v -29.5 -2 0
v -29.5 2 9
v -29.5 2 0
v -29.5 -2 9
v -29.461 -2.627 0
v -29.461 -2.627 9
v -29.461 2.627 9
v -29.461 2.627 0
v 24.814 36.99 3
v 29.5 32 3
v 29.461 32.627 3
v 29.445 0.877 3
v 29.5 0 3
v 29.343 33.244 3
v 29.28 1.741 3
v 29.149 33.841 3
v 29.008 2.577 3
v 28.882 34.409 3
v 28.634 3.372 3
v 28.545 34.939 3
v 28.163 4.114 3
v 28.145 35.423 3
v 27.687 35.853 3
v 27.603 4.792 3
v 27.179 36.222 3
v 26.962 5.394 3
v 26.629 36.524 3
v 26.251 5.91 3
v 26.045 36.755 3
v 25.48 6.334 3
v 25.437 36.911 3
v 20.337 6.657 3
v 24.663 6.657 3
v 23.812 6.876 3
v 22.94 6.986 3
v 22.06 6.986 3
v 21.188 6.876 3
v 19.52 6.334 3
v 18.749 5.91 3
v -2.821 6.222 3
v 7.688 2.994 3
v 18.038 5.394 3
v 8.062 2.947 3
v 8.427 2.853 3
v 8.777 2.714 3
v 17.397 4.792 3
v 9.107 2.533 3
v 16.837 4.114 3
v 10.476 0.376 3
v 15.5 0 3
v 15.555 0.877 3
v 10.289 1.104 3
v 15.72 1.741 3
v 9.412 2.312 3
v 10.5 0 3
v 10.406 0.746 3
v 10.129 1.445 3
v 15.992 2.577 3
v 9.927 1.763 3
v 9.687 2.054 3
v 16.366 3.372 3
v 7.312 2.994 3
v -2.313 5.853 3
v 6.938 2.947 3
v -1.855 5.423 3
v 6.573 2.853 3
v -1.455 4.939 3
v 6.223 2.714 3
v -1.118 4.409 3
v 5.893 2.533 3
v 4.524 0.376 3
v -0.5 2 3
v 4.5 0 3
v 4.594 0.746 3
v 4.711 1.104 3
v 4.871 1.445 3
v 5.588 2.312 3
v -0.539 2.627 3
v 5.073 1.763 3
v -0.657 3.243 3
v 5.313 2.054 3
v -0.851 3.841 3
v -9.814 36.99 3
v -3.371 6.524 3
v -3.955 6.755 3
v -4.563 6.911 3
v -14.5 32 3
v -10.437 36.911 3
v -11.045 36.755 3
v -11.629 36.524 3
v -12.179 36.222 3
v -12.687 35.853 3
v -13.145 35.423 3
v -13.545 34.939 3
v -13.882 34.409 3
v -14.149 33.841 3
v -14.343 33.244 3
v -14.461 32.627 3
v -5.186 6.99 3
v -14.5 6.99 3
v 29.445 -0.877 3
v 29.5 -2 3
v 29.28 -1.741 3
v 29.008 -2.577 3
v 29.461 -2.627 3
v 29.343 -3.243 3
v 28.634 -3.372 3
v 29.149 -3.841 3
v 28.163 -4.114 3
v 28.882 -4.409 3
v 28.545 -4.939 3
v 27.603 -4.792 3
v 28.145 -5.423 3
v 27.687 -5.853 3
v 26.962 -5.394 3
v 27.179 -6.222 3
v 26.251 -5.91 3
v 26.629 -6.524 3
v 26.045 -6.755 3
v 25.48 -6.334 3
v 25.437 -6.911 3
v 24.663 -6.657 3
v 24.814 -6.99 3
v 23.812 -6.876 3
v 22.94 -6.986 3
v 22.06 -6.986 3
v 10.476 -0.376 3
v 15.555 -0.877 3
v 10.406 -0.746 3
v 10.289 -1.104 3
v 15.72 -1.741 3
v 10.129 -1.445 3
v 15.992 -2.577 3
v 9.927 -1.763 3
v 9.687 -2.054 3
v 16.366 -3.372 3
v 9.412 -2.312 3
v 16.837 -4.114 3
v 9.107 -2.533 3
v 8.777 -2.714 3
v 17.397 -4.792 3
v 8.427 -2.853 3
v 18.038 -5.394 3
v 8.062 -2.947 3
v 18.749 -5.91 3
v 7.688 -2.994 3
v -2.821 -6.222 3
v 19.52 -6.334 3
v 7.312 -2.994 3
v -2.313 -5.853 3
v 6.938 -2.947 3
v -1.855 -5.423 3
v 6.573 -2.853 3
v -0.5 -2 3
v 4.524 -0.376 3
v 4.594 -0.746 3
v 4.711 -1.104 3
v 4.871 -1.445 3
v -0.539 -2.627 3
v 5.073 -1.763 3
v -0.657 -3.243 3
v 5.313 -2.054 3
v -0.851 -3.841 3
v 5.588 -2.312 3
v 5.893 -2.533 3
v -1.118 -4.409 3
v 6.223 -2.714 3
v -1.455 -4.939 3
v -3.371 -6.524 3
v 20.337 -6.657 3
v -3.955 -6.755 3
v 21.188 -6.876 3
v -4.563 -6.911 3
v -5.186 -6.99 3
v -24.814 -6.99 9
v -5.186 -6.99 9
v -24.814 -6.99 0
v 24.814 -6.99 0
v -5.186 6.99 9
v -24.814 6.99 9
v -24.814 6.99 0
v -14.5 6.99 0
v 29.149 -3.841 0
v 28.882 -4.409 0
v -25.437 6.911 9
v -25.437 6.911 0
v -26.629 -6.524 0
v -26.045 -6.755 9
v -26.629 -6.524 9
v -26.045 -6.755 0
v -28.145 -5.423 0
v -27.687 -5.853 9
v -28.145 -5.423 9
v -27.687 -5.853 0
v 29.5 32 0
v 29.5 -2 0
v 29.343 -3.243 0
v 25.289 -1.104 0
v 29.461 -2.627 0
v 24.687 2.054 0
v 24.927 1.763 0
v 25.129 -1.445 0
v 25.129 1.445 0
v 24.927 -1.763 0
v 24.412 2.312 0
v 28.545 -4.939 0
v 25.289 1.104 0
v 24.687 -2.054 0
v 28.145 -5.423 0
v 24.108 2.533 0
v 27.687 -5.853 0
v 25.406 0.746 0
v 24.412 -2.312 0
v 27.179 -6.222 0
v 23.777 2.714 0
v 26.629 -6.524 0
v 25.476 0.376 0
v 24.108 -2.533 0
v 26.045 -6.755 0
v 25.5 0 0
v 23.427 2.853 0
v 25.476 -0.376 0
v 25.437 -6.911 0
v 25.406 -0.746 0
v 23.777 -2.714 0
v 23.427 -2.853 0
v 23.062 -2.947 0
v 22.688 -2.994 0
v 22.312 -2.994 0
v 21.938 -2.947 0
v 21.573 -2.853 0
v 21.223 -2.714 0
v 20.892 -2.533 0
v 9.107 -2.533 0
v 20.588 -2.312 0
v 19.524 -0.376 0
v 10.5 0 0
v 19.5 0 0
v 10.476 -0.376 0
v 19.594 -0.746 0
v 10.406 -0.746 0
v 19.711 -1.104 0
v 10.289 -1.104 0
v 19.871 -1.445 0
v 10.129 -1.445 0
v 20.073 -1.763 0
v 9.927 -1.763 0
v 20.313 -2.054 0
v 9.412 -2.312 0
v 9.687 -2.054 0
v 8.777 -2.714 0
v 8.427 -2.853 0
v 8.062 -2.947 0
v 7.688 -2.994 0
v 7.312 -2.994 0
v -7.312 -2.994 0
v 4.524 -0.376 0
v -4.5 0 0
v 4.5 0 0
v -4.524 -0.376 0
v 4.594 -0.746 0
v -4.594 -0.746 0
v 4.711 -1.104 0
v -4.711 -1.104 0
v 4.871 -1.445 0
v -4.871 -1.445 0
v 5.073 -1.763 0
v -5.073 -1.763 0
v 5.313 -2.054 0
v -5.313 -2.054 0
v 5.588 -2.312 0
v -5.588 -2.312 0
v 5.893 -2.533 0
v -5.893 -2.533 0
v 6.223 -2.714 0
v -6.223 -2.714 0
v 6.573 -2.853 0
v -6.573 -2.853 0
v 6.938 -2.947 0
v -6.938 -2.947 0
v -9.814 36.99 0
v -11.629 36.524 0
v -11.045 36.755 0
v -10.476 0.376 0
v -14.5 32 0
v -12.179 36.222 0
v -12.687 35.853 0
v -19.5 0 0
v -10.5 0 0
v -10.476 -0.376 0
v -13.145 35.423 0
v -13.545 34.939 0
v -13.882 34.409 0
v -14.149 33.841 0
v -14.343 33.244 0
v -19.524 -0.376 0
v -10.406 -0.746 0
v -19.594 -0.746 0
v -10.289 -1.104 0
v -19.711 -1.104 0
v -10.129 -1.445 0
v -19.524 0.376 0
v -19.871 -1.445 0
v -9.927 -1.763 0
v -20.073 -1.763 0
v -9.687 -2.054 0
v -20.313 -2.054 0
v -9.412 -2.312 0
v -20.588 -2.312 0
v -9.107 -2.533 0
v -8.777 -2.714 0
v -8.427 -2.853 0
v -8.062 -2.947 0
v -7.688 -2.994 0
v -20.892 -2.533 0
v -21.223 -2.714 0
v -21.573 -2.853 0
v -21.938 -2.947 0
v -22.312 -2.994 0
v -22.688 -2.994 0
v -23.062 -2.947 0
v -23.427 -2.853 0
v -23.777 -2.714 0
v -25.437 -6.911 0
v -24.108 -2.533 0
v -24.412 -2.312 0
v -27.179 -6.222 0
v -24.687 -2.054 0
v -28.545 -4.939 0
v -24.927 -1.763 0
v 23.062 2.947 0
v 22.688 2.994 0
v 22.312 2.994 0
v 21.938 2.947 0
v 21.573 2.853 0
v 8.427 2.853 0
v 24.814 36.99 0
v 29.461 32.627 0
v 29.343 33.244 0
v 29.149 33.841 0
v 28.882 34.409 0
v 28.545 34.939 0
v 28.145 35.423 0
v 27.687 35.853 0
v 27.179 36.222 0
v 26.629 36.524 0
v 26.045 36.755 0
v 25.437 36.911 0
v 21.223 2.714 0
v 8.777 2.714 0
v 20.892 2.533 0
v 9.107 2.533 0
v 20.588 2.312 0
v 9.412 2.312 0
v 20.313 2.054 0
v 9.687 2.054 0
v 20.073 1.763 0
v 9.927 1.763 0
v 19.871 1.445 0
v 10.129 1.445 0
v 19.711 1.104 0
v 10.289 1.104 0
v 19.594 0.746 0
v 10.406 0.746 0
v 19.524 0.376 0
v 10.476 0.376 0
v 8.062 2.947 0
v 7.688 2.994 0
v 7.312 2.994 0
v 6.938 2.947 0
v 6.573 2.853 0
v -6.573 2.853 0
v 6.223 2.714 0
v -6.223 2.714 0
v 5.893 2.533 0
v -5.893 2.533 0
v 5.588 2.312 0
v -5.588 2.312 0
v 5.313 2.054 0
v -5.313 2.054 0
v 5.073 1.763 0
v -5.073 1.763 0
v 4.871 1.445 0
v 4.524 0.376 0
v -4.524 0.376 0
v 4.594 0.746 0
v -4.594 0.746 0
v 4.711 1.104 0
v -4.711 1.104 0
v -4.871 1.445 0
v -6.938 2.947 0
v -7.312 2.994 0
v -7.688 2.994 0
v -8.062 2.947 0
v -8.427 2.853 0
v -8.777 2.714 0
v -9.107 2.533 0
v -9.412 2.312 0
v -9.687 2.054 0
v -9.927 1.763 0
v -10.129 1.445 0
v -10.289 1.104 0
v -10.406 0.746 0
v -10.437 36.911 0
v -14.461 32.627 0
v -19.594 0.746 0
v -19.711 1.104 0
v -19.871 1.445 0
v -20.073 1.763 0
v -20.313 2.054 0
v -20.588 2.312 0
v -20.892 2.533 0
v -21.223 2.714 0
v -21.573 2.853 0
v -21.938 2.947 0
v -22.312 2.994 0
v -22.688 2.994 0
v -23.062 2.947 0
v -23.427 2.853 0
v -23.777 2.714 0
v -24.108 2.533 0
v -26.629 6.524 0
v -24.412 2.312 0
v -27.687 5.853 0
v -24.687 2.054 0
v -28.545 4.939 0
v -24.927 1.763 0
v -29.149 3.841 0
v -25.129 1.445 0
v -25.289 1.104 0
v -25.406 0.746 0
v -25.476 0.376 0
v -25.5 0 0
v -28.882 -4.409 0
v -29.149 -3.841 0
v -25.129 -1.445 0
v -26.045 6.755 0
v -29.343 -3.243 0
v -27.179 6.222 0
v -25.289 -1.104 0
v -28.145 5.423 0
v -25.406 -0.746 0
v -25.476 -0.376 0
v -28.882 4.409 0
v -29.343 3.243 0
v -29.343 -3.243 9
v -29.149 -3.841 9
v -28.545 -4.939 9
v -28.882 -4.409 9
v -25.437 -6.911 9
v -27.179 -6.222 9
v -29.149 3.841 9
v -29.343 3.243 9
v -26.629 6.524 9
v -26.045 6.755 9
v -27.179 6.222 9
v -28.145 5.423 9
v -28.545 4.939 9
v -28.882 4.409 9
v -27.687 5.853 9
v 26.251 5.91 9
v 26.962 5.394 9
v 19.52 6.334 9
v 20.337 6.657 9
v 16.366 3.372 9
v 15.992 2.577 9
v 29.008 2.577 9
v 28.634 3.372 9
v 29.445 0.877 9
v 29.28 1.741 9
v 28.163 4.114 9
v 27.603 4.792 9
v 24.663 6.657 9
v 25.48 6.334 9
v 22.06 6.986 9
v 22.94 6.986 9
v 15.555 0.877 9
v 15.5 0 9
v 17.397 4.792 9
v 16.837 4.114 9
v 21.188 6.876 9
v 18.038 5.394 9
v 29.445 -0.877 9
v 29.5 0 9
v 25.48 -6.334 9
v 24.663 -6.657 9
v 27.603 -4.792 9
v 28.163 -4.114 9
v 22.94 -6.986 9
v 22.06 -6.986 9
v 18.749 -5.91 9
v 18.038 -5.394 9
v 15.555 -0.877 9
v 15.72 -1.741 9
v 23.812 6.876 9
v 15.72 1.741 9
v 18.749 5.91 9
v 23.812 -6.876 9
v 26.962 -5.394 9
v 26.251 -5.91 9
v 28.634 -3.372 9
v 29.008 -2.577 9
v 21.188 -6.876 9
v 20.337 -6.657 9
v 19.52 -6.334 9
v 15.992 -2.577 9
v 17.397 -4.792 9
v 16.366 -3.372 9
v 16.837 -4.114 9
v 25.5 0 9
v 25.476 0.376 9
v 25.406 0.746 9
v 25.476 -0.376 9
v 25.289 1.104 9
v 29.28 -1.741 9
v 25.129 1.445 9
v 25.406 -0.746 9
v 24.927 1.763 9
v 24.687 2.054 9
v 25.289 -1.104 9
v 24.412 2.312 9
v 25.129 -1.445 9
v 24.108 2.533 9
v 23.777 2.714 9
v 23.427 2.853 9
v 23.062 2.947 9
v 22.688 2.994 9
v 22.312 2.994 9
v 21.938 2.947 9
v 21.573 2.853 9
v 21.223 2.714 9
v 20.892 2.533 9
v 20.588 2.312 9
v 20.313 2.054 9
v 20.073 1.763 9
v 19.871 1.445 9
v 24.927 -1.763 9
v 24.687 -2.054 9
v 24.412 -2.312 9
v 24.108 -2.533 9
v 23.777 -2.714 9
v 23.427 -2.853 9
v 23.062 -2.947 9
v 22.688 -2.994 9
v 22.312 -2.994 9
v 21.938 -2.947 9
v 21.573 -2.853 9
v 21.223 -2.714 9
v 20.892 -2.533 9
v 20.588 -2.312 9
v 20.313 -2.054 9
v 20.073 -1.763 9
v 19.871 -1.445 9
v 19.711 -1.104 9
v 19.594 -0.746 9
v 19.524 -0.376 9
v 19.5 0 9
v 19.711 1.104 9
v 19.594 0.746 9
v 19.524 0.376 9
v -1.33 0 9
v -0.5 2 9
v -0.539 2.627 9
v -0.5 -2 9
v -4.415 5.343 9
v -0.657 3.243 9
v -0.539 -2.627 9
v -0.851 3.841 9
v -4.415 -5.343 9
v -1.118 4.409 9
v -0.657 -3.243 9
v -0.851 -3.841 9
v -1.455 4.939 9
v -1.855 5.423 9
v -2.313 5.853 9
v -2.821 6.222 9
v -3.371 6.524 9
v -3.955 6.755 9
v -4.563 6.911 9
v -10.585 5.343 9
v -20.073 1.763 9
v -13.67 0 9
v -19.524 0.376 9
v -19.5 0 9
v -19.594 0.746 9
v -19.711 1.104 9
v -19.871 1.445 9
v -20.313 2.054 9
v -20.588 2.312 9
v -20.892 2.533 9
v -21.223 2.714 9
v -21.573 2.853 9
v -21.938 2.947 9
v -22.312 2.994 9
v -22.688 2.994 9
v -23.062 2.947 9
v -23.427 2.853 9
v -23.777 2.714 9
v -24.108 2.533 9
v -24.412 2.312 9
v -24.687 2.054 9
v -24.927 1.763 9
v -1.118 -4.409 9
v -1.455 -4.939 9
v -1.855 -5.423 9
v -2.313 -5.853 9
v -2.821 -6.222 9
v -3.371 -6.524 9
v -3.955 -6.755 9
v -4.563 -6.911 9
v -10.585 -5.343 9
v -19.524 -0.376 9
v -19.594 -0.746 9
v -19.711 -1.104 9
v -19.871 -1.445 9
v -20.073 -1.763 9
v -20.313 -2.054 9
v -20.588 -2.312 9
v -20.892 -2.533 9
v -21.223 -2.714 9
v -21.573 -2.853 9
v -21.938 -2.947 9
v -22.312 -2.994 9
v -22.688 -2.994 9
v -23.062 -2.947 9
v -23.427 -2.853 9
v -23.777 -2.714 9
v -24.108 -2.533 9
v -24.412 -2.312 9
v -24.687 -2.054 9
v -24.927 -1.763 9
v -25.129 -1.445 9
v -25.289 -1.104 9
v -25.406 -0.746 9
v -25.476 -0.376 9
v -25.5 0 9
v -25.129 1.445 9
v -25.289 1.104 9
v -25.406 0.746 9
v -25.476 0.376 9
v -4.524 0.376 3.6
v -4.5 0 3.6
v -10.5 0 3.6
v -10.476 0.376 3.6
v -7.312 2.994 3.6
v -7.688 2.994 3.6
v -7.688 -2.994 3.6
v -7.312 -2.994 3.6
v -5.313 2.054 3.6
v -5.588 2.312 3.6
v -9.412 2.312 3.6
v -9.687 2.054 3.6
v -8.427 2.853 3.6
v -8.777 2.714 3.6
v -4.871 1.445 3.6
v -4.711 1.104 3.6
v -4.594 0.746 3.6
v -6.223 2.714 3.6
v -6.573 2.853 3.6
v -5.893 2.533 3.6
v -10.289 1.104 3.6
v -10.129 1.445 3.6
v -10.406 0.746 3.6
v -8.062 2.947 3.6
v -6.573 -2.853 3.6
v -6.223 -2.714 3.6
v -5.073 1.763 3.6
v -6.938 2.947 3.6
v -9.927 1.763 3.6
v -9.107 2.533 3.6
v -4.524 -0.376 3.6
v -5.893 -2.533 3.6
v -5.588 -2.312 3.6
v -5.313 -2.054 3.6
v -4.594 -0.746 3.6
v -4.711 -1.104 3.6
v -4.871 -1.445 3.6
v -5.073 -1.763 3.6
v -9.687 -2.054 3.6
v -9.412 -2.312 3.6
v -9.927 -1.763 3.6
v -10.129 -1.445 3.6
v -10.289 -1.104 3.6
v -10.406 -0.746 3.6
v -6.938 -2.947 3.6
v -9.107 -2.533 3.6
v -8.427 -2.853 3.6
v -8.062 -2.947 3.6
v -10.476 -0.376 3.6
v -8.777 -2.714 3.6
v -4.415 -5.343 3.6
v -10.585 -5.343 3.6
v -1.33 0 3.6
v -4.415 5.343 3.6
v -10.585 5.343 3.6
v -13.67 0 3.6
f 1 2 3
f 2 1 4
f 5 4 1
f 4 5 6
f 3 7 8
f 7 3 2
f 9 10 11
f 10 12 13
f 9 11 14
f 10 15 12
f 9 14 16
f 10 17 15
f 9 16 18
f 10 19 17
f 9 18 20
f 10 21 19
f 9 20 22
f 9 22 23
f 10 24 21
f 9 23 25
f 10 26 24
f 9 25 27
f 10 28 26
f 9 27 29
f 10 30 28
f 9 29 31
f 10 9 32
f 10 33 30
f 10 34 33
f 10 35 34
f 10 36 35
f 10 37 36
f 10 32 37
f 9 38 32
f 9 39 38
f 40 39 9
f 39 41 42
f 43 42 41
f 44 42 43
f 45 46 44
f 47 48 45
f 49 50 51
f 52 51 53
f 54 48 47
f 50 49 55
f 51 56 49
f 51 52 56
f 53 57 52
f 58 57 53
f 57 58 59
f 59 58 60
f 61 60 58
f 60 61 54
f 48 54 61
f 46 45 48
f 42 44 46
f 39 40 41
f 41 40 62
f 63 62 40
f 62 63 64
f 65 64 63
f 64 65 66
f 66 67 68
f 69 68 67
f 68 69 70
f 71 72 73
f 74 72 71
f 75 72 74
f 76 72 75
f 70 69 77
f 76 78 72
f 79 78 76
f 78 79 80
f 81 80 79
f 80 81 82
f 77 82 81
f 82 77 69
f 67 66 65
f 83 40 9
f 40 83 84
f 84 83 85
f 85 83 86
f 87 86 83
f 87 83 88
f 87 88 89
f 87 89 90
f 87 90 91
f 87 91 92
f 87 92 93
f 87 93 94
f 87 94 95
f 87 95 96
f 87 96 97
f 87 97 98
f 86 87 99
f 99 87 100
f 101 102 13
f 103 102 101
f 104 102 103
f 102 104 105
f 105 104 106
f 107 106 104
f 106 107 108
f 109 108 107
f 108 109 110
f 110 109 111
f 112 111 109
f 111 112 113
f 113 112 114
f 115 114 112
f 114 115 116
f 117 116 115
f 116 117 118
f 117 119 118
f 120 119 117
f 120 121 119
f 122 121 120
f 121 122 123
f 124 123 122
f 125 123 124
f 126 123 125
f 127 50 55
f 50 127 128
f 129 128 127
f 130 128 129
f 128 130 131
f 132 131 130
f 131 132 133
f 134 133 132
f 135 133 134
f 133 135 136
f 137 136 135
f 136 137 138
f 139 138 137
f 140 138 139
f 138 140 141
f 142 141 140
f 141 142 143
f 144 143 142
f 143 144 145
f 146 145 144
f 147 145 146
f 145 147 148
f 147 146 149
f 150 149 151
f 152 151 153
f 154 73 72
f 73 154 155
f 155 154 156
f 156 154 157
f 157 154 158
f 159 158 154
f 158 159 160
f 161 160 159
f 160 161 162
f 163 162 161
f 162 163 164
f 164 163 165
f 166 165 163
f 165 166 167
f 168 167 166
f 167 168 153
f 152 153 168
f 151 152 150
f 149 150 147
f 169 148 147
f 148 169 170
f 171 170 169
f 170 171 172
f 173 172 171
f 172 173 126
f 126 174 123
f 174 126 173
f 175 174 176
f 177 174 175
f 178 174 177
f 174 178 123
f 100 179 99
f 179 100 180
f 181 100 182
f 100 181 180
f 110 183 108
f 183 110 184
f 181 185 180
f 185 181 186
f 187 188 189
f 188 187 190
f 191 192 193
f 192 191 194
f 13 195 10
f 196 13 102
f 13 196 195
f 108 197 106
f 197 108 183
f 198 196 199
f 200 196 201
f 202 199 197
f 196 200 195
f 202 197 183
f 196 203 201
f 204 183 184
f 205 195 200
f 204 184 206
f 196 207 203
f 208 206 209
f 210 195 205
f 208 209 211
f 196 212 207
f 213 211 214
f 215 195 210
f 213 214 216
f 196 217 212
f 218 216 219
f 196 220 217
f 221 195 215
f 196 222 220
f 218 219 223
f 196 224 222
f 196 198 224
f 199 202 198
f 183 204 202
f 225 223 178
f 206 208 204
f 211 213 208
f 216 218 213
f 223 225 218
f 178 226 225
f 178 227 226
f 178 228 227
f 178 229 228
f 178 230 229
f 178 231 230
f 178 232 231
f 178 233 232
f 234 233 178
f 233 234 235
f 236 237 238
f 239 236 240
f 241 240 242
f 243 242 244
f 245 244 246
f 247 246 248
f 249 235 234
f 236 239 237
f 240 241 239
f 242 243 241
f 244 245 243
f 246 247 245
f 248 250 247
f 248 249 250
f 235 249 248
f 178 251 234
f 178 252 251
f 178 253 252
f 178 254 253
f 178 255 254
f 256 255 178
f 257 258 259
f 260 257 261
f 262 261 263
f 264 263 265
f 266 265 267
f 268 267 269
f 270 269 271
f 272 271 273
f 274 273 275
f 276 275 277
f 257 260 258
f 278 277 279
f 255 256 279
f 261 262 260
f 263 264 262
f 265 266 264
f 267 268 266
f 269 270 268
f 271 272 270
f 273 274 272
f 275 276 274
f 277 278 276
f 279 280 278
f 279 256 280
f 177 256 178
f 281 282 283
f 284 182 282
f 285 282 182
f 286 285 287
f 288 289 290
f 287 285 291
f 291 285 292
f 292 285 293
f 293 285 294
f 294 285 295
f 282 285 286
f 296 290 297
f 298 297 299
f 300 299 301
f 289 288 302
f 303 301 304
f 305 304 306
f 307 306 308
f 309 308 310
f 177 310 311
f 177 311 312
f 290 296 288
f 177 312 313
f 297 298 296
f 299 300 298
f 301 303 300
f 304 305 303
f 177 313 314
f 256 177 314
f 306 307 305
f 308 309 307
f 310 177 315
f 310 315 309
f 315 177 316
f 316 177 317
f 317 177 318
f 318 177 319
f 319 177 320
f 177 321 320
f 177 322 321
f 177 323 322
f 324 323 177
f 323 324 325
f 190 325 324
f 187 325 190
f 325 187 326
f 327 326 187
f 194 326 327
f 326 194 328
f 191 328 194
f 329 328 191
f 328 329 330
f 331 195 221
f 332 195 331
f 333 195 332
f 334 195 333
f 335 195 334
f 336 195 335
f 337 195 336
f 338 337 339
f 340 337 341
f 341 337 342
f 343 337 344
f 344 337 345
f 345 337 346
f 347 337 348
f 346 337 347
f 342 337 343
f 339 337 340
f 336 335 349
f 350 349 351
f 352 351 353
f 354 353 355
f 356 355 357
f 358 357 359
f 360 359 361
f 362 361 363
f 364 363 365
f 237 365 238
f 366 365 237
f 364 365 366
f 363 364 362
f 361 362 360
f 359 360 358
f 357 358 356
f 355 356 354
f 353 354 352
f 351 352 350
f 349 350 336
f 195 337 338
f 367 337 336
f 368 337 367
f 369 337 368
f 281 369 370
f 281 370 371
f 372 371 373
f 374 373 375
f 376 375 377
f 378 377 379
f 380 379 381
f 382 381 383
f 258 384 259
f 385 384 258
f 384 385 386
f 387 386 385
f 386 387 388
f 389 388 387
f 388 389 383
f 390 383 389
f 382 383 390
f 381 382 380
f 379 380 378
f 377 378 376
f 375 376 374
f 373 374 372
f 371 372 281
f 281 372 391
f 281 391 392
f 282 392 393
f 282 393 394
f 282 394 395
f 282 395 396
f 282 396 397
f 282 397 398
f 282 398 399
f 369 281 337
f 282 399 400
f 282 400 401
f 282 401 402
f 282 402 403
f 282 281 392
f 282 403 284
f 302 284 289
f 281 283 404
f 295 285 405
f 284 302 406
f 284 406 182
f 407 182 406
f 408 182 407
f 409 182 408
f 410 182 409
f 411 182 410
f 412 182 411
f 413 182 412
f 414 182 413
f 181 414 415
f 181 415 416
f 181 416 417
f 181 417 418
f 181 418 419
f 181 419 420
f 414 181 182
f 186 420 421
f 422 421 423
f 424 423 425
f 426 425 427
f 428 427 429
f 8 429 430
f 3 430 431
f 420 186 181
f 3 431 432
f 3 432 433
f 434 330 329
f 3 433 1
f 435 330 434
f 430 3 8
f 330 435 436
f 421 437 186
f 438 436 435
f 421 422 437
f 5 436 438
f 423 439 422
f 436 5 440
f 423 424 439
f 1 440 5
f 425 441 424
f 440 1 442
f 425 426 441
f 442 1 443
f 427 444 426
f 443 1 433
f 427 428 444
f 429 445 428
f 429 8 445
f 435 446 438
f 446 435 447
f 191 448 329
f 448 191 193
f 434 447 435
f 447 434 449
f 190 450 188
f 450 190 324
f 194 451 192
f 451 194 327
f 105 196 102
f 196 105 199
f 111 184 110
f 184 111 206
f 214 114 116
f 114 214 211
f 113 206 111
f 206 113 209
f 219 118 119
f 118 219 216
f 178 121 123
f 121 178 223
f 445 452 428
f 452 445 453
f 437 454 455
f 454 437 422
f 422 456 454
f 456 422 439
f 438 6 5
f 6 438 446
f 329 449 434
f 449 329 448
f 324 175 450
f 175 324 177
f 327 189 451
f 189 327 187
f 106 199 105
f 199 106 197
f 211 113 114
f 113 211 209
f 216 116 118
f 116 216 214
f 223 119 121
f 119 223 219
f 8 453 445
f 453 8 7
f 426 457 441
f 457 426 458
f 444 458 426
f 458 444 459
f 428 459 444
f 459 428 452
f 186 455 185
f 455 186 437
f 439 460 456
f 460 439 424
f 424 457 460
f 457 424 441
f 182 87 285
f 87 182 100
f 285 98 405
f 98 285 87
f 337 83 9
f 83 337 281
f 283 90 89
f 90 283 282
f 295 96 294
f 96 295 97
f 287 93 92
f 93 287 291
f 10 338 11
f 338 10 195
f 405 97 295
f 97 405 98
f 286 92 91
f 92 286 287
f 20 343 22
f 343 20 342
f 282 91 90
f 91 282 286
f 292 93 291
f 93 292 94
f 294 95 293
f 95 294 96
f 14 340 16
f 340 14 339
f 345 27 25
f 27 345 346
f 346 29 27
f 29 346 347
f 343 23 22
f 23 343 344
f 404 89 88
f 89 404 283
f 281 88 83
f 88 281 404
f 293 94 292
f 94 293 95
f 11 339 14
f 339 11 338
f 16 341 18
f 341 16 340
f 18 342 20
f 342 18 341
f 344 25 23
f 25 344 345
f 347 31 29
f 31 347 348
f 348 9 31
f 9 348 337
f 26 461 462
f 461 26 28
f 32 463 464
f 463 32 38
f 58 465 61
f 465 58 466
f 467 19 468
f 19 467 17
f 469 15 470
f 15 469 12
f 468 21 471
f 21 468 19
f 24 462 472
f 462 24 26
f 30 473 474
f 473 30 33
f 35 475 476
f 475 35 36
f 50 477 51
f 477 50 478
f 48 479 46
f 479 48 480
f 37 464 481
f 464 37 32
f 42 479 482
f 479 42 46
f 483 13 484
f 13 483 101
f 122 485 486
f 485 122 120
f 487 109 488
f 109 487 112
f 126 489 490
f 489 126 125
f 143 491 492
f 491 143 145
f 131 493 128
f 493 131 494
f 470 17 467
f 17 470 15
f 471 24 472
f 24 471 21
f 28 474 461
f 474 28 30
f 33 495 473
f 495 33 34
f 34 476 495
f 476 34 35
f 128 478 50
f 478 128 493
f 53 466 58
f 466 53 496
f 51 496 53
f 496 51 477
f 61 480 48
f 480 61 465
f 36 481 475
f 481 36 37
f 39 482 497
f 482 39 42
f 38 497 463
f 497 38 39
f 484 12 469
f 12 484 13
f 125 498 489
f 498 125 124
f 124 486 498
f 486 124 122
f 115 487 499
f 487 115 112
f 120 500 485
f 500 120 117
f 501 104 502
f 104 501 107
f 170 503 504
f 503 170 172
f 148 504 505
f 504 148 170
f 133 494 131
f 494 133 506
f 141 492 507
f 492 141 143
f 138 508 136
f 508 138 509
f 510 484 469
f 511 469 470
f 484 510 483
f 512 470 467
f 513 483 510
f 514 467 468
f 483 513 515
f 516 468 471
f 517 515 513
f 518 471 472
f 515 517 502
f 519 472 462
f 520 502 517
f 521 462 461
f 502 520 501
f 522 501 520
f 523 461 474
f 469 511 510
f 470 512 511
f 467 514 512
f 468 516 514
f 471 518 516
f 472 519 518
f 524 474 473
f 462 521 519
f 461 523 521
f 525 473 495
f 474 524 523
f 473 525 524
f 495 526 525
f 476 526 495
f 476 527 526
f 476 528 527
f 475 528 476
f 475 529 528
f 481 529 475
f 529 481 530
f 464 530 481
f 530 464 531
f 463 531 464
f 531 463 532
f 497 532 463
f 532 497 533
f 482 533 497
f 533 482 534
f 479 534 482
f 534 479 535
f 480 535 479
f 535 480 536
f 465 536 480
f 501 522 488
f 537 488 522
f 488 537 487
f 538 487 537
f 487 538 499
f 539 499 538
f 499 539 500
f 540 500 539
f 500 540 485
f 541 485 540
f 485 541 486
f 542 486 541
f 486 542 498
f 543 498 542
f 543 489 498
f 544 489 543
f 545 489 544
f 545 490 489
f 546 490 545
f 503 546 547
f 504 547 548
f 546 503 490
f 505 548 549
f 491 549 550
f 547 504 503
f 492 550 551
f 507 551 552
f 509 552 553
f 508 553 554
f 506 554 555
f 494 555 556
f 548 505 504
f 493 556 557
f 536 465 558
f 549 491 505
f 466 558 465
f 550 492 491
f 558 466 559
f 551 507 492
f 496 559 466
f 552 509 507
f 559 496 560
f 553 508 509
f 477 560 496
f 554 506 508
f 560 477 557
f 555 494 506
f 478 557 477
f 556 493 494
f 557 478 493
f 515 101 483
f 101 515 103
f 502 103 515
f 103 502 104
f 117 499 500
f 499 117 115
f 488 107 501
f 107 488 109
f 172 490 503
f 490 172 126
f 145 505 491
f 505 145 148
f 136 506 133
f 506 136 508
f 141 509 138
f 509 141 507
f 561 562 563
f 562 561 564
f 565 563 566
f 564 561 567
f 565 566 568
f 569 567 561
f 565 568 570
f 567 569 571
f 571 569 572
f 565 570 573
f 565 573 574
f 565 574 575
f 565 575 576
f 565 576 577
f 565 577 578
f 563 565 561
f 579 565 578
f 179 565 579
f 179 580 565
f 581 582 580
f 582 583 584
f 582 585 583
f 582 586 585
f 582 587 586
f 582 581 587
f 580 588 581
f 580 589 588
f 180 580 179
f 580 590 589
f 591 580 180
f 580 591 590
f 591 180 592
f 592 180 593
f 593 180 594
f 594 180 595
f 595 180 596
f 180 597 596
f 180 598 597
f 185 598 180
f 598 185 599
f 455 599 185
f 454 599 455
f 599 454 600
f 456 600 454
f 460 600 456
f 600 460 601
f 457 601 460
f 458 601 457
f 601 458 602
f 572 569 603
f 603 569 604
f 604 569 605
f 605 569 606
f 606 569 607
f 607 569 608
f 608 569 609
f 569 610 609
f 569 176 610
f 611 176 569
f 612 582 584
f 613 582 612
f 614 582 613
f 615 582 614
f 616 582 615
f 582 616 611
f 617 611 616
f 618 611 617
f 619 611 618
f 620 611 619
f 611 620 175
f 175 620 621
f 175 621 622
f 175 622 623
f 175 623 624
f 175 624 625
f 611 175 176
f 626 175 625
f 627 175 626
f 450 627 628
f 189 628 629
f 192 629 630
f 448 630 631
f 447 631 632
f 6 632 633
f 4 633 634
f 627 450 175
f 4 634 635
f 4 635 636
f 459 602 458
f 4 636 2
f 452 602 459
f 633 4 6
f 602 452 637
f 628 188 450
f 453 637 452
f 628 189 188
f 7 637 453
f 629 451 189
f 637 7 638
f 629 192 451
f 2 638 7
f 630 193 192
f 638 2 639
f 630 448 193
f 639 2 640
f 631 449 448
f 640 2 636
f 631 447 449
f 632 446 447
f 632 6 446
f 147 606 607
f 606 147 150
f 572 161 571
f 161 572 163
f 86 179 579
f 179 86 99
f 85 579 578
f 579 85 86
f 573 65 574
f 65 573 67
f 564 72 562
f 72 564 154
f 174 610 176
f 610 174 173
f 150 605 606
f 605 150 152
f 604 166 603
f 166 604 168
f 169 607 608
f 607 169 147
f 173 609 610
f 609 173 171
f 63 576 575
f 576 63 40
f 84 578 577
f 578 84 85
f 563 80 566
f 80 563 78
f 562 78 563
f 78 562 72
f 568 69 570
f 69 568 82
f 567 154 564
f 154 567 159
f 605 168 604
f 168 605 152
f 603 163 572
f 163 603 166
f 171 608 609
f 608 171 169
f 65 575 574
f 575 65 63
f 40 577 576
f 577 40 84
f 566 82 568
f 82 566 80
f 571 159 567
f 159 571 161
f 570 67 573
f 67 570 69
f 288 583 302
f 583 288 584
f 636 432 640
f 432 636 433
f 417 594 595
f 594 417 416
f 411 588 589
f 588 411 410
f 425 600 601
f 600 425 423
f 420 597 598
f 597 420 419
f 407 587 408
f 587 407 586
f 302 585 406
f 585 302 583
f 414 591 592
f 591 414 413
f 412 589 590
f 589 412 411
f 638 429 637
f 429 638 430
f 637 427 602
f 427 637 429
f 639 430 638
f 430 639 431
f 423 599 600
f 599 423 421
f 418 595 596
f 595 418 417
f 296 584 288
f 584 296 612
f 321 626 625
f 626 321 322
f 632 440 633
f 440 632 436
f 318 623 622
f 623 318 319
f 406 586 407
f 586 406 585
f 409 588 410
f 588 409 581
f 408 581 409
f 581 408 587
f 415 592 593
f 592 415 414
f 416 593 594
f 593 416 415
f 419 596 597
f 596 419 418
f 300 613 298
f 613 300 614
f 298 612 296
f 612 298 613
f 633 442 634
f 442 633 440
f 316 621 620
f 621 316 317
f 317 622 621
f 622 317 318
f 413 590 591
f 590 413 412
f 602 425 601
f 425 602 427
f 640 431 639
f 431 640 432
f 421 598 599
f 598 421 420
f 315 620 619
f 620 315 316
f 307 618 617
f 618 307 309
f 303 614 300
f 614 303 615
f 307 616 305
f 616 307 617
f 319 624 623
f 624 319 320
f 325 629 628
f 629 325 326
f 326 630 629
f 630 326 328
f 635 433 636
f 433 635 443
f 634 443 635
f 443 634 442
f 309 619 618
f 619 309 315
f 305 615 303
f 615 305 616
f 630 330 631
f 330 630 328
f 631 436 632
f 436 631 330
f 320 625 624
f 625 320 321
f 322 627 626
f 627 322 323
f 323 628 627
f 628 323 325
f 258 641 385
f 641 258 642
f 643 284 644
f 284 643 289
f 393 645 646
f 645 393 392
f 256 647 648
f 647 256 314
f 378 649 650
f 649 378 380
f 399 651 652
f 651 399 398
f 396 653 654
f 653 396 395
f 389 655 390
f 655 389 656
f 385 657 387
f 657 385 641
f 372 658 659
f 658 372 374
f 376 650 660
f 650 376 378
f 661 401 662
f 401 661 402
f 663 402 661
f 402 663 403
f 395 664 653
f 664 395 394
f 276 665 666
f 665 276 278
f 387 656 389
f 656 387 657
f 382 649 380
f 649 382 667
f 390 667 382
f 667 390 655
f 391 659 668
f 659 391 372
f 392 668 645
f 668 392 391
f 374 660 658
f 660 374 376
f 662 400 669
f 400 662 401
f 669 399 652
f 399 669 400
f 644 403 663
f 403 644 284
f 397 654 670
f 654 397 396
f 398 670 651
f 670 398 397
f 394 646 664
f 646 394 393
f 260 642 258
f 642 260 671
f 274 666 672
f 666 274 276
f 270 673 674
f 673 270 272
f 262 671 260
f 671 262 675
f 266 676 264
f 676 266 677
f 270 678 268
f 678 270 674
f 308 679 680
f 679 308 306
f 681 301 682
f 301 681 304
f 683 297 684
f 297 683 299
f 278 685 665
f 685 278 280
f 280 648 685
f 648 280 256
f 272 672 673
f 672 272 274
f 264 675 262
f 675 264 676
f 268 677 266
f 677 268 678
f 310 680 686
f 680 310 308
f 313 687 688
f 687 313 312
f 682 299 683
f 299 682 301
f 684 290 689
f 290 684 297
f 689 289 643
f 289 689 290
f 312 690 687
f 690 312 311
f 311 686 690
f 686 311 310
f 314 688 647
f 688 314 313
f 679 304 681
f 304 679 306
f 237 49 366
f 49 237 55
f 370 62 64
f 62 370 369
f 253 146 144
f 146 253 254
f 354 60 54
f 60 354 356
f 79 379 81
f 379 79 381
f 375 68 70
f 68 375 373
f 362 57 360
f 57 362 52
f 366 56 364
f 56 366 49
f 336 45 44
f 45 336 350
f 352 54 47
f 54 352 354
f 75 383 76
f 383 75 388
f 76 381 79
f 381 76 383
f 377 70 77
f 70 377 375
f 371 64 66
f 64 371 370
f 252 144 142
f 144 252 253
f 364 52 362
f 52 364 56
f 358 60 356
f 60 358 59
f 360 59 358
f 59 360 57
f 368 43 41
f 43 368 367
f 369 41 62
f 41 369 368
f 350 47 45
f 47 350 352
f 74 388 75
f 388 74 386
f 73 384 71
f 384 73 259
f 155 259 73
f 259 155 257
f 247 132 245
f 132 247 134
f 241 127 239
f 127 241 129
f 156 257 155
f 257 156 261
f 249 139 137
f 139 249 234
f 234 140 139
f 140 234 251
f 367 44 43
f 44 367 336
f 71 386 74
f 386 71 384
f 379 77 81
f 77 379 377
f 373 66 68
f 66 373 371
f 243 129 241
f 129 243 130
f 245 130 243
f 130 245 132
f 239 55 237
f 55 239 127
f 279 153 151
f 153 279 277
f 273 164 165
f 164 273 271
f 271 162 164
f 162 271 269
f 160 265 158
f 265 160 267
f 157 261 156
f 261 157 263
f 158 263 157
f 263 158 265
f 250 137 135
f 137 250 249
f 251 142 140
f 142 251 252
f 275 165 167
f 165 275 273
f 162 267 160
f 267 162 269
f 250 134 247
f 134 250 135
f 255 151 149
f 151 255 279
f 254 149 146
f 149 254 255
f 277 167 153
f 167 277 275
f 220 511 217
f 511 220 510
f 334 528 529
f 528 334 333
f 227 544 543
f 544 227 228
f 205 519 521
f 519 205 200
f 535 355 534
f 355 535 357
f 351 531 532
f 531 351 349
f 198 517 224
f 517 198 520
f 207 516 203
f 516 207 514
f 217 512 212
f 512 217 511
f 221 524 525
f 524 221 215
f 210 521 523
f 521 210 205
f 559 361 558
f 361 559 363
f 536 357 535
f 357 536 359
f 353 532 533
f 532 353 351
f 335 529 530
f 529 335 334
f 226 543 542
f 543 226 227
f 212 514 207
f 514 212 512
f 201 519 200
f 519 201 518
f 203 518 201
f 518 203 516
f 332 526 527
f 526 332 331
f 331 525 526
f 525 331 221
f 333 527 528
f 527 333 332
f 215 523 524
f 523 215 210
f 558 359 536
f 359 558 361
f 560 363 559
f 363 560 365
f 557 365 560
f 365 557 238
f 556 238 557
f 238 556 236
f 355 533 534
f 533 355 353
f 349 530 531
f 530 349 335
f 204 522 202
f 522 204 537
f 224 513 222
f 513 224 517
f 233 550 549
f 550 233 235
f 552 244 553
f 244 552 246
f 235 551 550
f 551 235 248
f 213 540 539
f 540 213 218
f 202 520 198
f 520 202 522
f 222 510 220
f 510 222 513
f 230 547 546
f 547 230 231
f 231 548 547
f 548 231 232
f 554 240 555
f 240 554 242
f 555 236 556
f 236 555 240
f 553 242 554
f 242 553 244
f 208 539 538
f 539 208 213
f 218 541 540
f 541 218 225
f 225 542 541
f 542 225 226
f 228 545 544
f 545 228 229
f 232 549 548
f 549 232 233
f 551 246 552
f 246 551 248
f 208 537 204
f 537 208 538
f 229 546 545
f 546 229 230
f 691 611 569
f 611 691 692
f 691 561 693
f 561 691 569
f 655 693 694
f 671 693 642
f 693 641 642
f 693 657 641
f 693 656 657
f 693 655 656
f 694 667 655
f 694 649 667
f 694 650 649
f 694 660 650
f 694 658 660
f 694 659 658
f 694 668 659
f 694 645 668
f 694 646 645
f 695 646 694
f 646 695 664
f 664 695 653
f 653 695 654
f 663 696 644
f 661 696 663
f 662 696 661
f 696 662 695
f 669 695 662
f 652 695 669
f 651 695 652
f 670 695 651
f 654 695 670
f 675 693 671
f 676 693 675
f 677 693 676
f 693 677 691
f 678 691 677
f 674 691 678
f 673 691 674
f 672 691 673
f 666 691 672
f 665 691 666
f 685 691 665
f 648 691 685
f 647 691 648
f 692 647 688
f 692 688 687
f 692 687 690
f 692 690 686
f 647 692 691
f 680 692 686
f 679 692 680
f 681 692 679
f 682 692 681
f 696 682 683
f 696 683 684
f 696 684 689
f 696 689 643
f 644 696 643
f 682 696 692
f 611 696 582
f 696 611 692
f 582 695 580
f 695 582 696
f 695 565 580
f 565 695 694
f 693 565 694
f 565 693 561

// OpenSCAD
$fn = 50;


difference() {
	union() {
		translate(v = [0, 0, 0]) {
			rotate(a = [0, 0, 0]) {
				hull() {
					translate(v = [-24.5000000000, 2.0000000000, 0]) {
						rotate(a = [0, 0, 0]) {
							translate(v = [0, 0, 0]) {
								rotate(a = [0, 0, 0]) {
									cylinder(h = 3, r = 5);
								}
							}
						}
					}
					translate(v = [24.5000000000, 2.0000000000, 0]) {
						rotate(a = [0, 0, 0]) {
							translate(v = [0, 0, 0]) {
								rotate(a = [0, 0, 0]) {
									cylinder(h = 3, r = 5);
								}
							}
						}
					}
					translate(v = [-24.5000000000, -2.0000000000, 0]) {
						rotate(a = [0, 0, 0]) {
							translate(v = [0, 0, 0]) {
								rotate(a = [0, 0, 0]) {
									cylinder(h = 3, r = 5);
								}
							}
						}
					}
					translate(v = [24.5000000000, -2.0000000000, 0]) {
						rotate(a = [0, 0, 0]) {
							translate(v = [0, 0, 0]) {
								rotate(a = [0, 0, 0]) {
									cylinder(h = 3, r = 5);
								}
							}
						}
					}
				}
			}
		}
		translate(v = [7.5000000000, 15.0000000000, 0]) {
			rotate(a = [0, 0, 0]) {
				hull() {
					translate(v = [-17.0000000000, 17.0000000000, 0]) {
						rotate(a = [0, 0, 0]) {
							translate(v = [0, 0, 0]) {
								rotate(a = [0, 0, 0]) {
									cylinder(h = 3, r = 5);
								}
							}
						}
					}
					translate(v = [17.0000000000, 17.0000000000, 0]) {
						rotate(a = [0, 0, 0]) {
							translate(v = [0, 0, 0]) {
								rotate(a = [0, 0, 0]) {
									cylinder(h = 3, r = 5);
								}
							}
						}
					}
					translate(v = [-17.0000000000, -17.0000000000, 0]) {
						rotate(a = [0, 0, 0]) {
							translate(v = [0, 0, 0]) {
								rotate(a = [0, 0, 0]) {
									cylinder(h = 3, r = 5);
								}
							}
						}
					}
					translate(v = [17.0000000000, -17.0000000000, 0]) {
						rotate(a = [0, 0, 0]) {
							translate(v = [0, 0, 0]) {
								rotate(a = [0, 0, 0]) {
									cylinder(h = 3, r = 5);
								}
							}
						}
					}
				}
			}
		}
		translate(v = [22.5000000000, 0, 0]) {
			rotate(a = [0, 0, 0]) {
				cylinder(h = 9, r = 7.0000000000);
			}
		}
		translate(v = [-15.0000000000, 0, 0]) {
			rotate(a = [0, 0, 0]) {
				hull() {
					translate(v = [-9.5000000000, 2.0000000000, 0]) {
						rotate(a = [0, 0, 0]) {
							translate(v = [0, 0, 0]) {
								rotate(a = [0, 0, 0]) {
									cylinder(h = 9, r = 5);
								}
							}
						}
					}
					translate(v = [9.5000000000, 2.0000000000, 0]) {
						rotate(a = [0, 0, 0]) {
							translate(v = [0, 0, 0]) {
								rotate(a = [0, 0, 0]) {
									cylinder(h = 9, r = 5);
								}
							}
						}
					}
					translate(v = [-9.5000000000, -2.0000000000, 0]) {
						rotate(a = [0, 0, 0]) {
							translate(v = [0, 0, 0]) {
								rotate(a = [0, 0, 0]) {
									cylinder(h = 9, r = 5);
								}
							}
						}
					}
					translate(v = [9.5000000000, -2.0000000000, 0]) {
						rotate(a = [0, 0, 0]) {
							translate(v = [0, 0, 0]) {
								rotate(a = [0, 0, 0]) {
									cylinder(h = 9, r = 5);
								}
							}
						}
					}
				}
			}
		}
	}
	union() {
		translate(v = [-22.5000000000, 0.0000000000, 0]) {
			rotate(a = [0, 0, 0]) {
				translate(v = [0, 0, -50]) {
					rotate(a = [0, 0, 0]) {
						cylinder(h = 100, r = 3.0000000000);
					}
				}
			}
		}
		translate(v = [-7.5000000000, 0.0000000000, 0]) {
			rotate(a = [0, 0, 0]) {
				translate(v = [0, 0, -50]) {
					rotate(a = [0, 0, 0]) {
						cylinder(h = 100, r = 3.0000000000);
					}
				}
			}
		}
		translate(v = [7.5000000000, 0.0000000000, 0]) {
			rotate(a = [0, 0, 0]) {
				translate(v = [0, 0, -50]) {
					rotate(a = [0, 0, 0]) {
						cylinder(h = 100, r = 3.0000000000);
					}
				}
			}
		}
		translate(v = [22.5000000000, 0.0000000000, 0]) {
			rotate(a = [0, 0, 0]) {
				translate(v = [0, 0, -50]) {
					rotate(a = [0, 0, 0]) {
						cylinder(h = 100, r = 3.0000000000);
					}
				}
			}
		}
		translate(v = [-7.5000000000, 0, 3.6000000000]) {
			rotate(a = [0, 0, 0]) {
				#translate(v = [0, 0, 0]) {
					rotate(a = [0, 0, 0]) {
						linear_extrude(height = 5.4000000000) {
							polygon(points = [[6.1700000000, 0.0000000000], [3.0850000000, 5.3433767413], [-3.0850000000, 5.3433767413], [-6.1700000000, 0.0000000000], [-3.0850000000, -5.3433767413], [3.0850000000, -5.3433767413]]);
						}
					}
				}
			}
		}
	}
}
